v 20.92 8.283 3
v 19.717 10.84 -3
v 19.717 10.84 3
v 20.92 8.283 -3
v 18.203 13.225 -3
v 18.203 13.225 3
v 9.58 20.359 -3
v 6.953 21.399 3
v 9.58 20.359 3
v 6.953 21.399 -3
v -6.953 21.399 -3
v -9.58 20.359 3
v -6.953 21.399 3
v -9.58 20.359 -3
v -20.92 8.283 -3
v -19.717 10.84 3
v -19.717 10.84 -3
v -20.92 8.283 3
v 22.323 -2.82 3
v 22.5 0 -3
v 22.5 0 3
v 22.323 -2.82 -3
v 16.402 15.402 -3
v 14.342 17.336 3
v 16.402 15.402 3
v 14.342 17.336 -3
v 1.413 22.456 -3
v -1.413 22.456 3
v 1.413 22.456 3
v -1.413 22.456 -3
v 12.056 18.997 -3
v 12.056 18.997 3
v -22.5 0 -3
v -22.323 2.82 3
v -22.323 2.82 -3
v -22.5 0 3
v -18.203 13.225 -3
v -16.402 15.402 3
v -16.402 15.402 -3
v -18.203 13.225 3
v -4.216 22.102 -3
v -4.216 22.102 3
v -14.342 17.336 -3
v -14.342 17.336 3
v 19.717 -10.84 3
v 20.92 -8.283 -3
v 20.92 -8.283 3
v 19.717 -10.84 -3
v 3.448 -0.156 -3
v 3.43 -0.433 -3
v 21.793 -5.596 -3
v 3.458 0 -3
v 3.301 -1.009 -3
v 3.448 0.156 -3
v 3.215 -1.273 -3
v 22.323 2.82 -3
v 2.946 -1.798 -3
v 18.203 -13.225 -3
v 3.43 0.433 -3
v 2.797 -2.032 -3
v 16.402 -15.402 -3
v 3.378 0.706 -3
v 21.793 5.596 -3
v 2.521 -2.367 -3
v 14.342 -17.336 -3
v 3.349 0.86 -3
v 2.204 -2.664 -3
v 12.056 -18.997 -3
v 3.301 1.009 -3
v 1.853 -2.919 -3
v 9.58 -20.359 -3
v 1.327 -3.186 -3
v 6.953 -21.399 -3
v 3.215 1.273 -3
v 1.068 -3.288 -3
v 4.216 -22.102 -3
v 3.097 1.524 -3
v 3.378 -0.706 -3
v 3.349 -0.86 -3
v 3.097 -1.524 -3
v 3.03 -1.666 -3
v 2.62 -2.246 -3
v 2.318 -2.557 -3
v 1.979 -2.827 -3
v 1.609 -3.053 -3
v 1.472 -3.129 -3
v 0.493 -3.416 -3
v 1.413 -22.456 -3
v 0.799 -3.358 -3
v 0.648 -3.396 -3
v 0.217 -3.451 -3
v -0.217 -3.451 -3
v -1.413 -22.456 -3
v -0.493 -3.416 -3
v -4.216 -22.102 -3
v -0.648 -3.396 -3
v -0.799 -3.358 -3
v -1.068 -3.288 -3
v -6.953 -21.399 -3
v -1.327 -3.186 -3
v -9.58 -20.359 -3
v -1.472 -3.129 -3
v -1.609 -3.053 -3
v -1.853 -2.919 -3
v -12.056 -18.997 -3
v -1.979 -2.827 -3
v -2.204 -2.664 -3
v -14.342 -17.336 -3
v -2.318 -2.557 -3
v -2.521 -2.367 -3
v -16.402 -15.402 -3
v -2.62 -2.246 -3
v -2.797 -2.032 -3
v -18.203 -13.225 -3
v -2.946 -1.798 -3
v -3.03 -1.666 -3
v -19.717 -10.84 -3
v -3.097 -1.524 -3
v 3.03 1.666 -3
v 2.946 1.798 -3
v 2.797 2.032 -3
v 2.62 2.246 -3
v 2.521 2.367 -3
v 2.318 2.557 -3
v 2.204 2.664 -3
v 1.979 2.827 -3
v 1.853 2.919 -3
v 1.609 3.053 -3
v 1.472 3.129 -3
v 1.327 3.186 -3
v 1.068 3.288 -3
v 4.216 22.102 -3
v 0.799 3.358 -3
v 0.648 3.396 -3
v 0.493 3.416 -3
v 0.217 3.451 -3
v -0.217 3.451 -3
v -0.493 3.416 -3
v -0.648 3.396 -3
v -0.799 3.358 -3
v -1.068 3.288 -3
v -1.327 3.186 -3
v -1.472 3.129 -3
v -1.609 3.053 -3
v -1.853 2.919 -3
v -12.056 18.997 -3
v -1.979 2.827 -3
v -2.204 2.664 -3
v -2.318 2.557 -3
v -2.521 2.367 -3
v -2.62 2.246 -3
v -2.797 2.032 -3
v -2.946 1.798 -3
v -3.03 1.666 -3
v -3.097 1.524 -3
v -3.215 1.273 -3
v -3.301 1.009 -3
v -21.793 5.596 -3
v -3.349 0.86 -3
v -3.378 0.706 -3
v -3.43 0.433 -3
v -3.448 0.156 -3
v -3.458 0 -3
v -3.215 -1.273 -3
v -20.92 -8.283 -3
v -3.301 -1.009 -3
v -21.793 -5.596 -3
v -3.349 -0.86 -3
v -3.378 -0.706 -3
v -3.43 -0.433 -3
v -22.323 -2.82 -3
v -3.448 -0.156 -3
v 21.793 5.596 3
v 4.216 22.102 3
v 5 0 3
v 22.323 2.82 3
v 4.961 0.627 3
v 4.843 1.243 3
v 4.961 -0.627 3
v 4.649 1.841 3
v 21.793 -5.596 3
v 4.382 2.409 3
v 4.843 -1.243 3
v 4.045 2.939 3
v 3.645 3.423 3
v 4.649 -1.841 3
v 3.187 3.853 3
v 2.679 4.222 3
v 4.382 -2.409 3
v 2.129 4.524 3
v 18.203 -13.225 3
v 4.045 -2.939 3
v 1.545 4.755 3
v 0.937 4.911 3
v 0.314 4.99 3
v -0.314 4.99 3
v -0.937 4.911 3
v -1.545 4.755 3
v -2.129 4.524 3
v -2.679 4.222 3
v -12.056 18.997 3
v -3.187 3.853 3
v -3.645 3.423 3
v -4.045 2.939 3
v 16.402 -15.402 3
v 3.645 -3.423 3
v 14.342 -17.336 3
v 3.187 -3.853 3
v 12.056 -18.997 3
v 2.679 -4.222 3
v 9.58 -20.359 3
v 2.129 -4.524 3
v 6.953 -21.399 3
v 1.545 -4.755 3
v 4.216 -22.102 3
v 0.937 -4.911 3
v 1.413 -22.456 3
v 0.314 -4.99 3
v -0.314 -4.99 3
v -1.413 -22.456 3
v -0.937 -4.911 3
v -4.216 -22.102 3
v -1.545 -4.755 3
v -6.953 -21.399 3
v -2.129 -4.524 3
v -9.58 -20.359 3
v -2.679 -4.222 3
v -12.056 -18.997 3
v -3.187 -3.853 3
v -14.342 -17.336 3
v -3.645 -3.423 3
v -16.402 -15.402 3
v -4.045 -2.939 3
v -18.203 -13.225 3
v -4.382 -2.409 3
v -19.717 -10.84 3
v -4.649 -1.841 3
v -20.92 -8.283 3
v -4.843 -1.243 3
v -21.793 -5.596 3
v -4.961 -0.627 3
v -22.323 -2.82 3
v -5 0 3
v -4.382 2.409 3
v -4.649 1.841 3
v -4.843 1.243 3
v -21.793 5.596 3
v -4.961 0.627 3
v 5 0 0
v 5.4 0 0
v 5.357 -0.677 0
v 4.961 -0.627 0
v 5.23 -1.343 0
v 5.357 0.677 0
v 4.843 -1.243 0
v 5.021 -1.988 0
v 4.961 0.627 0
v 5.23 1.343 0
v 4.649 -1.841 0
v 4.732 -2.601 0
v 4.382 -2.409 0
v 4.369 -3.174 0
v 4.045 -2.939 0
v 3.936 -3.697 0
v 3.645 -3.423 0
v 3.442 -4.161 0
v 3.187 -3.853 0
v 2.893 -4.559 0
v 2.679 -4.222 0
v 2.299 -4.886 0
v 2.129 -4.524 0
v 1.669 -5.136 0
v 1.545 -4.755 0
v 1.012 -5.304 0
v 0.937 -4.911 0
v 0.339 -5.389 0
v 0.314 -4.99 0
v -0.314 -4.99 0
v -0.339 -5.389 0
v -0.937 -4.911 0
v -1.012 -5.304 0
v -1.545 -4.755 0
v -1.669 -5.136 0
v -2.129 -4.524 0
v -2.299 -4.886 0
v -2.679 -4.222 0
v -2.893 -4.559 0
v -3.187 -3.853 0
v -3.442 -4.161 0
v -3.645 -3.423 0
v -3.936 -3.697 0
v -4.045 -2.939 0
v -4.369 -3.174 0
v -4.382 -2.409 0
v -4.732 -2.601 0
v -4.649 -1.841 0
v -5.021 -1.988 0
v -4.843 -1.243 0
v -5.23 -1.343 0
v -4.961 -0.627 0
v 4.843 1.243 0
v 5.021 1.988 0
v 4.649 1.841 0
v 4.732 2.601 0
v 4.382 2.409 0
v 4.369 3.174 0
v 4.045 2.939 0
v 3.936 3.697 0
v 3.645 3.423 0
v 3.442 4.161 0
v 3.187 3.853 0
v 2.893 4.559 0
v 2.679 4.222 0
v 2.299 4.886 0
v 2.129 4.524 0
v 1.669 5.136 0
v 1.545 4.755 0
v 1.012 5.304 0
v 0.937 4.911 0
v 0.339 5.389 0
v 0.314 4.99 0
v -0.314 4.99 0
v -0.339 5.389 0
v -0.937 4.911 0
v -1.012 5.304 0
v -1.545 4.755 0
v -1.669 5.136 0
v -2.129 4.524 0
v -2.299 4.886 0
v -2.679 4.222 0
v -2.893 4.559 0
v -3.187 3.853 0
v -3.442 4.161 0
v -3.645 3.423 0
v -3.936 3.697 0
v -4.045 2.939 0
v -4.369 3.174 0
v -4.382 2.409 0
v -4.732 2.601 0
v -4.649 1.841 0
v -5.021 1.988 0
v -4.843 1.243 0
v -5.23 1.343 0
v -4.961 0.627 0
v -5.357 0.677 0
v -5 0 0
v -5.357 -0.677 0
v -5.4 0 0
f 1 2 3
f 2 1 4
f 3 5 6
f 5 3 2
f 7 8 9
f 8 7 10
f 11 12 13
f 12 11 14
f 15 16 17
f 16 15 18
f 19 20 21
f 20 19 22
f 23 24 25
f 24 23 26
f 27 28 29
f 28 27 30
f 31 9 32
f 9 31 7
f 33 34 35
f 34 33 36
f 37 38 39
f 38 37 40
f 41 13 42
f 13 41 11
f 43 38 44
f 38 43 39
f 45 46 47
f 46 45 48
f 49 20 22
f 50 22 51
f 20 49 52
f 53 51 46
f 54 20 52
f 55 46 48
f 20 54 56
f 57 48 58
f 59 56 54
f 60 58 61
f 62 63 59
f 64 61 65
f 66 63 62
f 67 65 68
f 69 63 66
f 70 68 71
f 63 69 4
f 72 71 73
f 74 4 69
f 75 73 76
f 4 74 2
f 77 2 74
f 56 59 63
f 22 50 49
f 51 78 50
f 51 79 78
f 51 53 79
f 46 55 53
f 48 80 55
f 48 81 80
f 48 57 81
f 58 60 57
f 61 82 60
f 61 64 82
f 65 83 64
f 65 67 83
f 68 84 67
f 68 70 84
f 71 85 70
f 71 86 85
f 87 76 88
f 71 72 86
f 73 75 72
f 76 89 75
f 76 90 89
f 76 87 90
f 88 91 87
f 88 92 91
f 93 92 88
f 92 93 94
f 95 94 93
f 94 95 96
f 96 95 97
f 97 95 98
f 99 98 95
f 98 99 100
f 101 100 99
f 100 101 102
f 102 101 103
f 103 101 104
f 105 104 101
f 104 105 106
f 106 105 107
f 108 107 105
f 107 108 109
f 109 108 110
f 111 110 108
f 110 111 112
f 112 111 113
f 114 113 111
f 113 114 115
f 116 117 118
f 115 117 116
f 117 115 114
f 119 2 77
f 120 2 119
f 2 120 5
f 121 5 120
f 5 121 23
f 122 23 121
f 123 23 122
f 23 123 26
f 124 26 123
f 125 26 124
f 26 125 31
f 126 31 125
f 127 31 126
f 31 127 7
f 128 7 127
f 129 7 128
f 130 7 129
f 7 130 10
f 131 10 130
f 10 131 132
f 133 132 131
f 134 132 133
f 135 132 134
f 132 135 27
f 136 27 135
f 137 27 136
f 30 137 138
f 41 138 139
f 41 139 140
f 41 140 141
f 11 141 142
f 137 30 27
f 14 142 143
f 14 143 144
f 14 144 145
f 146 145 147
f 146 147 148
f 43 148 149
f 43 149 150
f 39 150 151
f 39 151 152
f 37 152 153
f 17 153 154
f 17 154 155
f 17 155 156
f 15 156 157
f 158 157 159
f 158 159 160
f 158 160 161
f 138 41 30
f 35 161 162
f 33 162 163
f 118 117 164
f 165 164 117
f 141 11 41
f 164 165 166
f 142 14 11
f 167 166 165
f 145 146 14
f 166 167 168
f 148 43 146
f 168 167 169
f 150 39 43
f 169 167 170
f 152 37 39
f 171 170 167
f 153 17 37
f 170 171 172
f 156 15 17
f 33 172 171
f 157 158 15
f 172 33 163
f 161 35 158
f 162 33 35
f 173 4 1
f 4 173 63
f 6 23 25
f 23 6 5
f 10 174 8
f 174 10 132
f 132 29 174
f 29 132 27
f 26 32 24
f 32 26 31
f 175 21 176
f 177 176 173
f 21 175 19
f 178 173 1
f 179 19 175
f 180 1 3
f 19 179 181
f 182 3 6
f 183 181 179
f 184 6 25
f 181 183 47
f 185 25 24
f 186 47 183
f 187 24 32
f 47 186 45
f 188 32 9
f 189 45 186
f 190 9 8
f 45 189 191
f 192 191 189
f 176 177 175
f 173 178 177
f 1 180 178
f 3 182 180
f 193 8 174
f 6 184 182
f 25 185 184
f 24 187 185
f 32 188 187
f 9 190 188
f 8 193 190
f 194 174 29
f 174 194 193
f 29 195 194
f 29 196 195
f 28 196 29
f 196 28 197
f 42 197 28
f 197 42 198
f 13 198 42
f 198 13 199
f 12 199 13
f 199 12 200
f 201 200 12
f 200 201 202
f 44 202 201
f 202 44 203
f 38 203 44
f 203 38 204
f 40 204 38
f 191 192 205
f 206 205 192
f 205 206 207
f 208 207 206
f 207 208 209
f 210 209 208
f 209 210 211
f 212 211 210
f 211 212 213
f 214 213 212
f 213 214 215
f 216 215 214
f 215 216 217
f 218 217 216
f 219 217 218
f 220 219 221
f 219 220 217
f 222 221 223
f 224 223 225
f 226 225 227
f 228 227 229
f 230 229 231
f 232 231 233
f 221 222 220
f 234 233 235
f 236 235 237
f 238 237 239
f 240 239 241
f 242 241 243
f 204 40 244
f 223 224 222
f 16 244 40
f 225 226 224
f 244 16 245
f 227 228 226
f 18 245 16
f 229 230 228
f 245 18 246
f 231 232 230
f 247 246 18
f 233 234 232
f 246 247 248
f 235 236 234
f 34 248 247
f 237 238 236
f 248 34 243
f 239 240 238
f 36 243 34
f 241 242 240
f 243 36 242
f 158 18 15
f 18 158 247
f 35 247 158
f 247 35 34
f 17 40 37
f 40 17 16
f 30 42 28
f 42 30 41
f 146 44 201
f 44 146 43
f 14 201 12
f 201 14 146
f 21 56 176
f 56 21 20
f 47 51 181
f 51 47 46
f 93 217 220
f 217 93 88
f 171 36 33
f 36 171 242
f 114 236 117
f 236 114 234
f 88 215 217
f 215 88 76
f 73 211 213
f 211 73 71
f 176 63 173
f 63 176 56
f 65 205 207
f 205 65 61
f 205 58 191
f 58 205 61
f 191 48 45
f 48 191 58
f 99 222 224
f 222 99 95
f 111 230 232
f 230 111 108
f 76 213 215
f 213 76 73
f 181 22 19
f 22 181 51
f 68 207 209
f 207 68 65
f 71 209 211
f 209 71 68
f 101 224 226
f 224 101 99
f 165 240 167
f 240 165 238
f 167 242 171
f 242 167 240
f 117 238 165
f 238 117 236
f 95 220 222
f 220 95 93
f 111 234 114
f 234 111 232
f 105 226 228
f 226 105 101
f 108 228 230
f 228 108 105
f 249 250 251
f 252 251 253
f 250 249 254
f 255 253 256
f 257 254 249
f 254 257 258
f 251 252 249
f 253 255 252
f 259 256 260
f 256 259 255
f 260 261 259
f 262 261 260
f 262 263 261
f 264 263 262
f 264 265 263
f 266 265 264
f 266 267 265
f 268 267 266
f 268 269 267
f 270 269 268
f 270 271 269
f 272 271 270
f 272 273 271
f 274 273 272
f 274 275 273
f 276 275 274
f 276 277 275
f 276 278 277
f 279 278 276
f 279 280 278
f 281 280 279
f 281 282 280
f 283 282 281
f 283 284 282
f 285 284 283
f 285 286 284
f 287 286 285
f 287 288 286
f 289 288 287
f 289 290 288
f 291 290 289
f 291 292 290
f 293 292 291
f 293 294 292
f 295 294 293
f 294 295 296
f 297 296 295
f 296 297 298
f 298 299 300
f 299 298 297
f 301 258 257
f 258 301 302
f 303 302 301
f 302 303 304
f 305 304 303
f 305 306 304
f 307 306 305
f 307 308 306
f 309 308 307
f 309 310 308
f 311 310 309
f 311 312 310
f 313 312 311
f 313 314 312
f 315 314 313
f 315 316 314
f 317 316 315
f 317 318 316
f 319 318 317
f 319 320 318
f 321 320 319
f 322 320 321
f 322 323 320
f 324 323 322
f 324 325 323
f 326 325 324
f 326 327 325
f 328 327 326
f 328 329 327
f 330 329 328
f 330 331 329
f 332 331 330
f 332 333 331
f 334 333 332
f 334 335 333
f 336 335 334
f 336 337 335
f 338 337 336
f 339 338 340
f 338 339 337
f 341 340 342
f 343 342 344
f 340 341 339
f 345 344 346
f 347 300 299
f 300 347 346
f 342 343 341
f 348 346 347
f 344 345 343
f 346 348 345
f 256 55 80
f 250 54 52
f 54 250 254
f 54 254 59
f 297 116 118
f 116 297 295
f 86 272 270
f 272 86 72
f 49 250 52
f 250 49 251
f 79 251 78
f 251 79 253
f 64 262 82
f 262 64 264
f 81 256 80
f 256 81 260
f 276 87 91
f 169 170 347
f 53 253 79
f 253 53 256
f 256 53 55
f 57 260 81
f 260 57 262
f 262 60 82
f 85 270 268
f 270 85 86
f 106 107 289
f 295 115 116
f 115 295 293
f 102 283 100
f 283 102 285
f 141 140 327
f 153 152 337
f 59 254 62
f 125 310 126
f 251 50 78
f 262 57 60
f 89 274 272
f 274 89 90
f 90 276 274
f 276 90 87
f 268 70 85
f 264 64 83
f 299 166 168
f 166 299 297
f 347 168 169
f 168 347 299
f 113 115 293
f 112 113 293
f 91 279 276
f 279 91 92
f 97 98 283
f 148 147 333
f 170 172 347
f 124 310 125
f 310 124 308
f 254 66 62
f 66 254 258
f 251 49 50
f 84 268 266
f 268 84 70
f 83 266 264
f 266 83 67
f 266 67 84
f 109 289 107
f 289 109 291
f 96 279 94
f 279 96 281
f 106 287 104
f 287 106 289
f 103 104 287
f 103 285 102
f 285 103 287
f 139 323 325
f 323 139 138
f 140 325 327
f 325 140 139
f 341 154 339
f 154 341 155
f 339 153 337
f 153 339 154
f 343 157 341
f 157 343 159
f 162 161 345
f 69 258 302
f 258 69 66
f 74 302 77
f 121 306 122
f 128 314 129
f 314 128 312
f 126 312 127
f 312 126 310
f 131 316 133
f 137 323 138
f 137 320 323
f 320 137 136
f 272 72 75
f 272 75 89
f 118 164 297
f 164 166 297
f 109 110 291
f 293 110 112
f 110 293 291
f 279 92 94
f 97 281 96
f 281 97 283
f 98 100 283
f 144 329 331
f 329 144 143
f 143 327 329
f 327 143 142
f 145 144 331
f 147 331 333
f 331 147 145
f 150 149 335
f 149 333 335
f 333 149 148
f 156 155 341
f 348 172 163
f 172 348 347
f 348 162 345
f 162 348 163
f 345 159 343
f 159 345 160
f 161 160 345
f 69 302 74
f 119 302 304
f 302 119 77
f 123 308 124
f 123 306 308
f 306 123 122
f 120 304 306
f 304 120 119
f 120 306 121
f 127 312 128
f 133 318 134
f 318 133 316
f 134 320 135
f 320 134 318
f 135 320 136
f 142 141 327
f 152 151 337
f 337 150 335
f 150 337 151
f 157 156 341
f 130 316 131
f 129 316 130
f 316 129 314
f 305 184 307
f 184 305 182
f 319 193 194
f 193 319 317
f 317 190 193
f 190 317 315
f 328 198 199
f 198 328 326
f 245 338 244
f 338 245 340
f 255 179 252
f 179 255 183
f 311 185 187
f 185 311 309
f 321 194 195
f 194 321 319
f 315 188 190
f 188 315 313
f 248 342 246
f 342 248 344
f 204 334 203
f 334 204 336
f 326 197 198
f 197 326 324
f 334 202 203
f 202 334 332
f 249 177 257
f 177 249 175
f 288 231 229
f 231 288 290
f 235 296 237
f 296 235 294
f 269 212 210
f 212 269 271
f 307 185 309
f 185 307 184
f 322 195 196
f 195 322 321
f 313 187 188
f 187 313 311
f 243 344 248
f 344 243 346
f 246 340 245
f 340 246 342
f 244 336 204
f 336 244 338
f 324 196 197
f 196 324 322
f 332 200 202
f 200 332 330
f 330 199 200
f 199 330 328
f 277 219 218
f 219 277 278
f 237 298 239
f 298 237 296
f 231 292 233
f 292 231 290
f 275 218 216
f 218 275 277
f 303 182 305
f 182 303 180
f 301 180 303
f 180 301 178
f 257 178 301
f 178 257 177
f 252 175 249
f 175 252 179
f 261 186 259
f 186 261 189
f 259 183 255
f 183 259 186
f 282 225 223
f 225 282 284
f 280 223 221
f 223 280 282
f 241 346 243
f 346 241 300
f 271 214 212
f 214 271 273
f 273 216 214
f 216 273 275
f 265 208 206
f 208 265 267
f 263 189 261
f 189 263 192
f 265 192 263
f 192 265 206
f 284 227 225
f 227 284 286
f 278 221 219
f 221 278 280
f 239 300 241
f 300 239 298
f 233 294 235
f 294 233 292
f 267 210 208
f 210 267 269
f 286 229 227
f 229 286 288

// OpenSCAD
$fn = 50;


difference() {
	union() {
		translate(v = [0, 0, -3.0000000000]) {
			cylinder(h = 6, r = 22.5000000000);
		}
		#translate(v = [0, 0, -6.0000000000]) {
			cylinder(h = 6, r = 2.8750000000);
		}
	}
	union() {
		translate(v = [0, 0, 0]) {
			rotate(a = [0, 0, 0]) {
				difference() {
					union() {
						translate(v = [0, 0, -6.0000000000]) {
							cylinder(h = 6, r = 2.6000000000);
						}
						translate(v = [0, 0, -3.9000000000]) {
							cylinder(h = 3.9000000000, r1 = 2.8750000000, r2 = 5.4000000000);
						}
						translate(v = [0, 0, -6.0000000000]) {
							cylinder(h = 6, r = 2.8750000000);
						}
						translate(v = [0, 0, -6.0000000000]) {
							cylinder(h = 6, r = 2.6000000000);
						}
					}
					union();
				}
			}
		}
		#cylinder(h = 3, r = 5.0000000000);
	}
}
